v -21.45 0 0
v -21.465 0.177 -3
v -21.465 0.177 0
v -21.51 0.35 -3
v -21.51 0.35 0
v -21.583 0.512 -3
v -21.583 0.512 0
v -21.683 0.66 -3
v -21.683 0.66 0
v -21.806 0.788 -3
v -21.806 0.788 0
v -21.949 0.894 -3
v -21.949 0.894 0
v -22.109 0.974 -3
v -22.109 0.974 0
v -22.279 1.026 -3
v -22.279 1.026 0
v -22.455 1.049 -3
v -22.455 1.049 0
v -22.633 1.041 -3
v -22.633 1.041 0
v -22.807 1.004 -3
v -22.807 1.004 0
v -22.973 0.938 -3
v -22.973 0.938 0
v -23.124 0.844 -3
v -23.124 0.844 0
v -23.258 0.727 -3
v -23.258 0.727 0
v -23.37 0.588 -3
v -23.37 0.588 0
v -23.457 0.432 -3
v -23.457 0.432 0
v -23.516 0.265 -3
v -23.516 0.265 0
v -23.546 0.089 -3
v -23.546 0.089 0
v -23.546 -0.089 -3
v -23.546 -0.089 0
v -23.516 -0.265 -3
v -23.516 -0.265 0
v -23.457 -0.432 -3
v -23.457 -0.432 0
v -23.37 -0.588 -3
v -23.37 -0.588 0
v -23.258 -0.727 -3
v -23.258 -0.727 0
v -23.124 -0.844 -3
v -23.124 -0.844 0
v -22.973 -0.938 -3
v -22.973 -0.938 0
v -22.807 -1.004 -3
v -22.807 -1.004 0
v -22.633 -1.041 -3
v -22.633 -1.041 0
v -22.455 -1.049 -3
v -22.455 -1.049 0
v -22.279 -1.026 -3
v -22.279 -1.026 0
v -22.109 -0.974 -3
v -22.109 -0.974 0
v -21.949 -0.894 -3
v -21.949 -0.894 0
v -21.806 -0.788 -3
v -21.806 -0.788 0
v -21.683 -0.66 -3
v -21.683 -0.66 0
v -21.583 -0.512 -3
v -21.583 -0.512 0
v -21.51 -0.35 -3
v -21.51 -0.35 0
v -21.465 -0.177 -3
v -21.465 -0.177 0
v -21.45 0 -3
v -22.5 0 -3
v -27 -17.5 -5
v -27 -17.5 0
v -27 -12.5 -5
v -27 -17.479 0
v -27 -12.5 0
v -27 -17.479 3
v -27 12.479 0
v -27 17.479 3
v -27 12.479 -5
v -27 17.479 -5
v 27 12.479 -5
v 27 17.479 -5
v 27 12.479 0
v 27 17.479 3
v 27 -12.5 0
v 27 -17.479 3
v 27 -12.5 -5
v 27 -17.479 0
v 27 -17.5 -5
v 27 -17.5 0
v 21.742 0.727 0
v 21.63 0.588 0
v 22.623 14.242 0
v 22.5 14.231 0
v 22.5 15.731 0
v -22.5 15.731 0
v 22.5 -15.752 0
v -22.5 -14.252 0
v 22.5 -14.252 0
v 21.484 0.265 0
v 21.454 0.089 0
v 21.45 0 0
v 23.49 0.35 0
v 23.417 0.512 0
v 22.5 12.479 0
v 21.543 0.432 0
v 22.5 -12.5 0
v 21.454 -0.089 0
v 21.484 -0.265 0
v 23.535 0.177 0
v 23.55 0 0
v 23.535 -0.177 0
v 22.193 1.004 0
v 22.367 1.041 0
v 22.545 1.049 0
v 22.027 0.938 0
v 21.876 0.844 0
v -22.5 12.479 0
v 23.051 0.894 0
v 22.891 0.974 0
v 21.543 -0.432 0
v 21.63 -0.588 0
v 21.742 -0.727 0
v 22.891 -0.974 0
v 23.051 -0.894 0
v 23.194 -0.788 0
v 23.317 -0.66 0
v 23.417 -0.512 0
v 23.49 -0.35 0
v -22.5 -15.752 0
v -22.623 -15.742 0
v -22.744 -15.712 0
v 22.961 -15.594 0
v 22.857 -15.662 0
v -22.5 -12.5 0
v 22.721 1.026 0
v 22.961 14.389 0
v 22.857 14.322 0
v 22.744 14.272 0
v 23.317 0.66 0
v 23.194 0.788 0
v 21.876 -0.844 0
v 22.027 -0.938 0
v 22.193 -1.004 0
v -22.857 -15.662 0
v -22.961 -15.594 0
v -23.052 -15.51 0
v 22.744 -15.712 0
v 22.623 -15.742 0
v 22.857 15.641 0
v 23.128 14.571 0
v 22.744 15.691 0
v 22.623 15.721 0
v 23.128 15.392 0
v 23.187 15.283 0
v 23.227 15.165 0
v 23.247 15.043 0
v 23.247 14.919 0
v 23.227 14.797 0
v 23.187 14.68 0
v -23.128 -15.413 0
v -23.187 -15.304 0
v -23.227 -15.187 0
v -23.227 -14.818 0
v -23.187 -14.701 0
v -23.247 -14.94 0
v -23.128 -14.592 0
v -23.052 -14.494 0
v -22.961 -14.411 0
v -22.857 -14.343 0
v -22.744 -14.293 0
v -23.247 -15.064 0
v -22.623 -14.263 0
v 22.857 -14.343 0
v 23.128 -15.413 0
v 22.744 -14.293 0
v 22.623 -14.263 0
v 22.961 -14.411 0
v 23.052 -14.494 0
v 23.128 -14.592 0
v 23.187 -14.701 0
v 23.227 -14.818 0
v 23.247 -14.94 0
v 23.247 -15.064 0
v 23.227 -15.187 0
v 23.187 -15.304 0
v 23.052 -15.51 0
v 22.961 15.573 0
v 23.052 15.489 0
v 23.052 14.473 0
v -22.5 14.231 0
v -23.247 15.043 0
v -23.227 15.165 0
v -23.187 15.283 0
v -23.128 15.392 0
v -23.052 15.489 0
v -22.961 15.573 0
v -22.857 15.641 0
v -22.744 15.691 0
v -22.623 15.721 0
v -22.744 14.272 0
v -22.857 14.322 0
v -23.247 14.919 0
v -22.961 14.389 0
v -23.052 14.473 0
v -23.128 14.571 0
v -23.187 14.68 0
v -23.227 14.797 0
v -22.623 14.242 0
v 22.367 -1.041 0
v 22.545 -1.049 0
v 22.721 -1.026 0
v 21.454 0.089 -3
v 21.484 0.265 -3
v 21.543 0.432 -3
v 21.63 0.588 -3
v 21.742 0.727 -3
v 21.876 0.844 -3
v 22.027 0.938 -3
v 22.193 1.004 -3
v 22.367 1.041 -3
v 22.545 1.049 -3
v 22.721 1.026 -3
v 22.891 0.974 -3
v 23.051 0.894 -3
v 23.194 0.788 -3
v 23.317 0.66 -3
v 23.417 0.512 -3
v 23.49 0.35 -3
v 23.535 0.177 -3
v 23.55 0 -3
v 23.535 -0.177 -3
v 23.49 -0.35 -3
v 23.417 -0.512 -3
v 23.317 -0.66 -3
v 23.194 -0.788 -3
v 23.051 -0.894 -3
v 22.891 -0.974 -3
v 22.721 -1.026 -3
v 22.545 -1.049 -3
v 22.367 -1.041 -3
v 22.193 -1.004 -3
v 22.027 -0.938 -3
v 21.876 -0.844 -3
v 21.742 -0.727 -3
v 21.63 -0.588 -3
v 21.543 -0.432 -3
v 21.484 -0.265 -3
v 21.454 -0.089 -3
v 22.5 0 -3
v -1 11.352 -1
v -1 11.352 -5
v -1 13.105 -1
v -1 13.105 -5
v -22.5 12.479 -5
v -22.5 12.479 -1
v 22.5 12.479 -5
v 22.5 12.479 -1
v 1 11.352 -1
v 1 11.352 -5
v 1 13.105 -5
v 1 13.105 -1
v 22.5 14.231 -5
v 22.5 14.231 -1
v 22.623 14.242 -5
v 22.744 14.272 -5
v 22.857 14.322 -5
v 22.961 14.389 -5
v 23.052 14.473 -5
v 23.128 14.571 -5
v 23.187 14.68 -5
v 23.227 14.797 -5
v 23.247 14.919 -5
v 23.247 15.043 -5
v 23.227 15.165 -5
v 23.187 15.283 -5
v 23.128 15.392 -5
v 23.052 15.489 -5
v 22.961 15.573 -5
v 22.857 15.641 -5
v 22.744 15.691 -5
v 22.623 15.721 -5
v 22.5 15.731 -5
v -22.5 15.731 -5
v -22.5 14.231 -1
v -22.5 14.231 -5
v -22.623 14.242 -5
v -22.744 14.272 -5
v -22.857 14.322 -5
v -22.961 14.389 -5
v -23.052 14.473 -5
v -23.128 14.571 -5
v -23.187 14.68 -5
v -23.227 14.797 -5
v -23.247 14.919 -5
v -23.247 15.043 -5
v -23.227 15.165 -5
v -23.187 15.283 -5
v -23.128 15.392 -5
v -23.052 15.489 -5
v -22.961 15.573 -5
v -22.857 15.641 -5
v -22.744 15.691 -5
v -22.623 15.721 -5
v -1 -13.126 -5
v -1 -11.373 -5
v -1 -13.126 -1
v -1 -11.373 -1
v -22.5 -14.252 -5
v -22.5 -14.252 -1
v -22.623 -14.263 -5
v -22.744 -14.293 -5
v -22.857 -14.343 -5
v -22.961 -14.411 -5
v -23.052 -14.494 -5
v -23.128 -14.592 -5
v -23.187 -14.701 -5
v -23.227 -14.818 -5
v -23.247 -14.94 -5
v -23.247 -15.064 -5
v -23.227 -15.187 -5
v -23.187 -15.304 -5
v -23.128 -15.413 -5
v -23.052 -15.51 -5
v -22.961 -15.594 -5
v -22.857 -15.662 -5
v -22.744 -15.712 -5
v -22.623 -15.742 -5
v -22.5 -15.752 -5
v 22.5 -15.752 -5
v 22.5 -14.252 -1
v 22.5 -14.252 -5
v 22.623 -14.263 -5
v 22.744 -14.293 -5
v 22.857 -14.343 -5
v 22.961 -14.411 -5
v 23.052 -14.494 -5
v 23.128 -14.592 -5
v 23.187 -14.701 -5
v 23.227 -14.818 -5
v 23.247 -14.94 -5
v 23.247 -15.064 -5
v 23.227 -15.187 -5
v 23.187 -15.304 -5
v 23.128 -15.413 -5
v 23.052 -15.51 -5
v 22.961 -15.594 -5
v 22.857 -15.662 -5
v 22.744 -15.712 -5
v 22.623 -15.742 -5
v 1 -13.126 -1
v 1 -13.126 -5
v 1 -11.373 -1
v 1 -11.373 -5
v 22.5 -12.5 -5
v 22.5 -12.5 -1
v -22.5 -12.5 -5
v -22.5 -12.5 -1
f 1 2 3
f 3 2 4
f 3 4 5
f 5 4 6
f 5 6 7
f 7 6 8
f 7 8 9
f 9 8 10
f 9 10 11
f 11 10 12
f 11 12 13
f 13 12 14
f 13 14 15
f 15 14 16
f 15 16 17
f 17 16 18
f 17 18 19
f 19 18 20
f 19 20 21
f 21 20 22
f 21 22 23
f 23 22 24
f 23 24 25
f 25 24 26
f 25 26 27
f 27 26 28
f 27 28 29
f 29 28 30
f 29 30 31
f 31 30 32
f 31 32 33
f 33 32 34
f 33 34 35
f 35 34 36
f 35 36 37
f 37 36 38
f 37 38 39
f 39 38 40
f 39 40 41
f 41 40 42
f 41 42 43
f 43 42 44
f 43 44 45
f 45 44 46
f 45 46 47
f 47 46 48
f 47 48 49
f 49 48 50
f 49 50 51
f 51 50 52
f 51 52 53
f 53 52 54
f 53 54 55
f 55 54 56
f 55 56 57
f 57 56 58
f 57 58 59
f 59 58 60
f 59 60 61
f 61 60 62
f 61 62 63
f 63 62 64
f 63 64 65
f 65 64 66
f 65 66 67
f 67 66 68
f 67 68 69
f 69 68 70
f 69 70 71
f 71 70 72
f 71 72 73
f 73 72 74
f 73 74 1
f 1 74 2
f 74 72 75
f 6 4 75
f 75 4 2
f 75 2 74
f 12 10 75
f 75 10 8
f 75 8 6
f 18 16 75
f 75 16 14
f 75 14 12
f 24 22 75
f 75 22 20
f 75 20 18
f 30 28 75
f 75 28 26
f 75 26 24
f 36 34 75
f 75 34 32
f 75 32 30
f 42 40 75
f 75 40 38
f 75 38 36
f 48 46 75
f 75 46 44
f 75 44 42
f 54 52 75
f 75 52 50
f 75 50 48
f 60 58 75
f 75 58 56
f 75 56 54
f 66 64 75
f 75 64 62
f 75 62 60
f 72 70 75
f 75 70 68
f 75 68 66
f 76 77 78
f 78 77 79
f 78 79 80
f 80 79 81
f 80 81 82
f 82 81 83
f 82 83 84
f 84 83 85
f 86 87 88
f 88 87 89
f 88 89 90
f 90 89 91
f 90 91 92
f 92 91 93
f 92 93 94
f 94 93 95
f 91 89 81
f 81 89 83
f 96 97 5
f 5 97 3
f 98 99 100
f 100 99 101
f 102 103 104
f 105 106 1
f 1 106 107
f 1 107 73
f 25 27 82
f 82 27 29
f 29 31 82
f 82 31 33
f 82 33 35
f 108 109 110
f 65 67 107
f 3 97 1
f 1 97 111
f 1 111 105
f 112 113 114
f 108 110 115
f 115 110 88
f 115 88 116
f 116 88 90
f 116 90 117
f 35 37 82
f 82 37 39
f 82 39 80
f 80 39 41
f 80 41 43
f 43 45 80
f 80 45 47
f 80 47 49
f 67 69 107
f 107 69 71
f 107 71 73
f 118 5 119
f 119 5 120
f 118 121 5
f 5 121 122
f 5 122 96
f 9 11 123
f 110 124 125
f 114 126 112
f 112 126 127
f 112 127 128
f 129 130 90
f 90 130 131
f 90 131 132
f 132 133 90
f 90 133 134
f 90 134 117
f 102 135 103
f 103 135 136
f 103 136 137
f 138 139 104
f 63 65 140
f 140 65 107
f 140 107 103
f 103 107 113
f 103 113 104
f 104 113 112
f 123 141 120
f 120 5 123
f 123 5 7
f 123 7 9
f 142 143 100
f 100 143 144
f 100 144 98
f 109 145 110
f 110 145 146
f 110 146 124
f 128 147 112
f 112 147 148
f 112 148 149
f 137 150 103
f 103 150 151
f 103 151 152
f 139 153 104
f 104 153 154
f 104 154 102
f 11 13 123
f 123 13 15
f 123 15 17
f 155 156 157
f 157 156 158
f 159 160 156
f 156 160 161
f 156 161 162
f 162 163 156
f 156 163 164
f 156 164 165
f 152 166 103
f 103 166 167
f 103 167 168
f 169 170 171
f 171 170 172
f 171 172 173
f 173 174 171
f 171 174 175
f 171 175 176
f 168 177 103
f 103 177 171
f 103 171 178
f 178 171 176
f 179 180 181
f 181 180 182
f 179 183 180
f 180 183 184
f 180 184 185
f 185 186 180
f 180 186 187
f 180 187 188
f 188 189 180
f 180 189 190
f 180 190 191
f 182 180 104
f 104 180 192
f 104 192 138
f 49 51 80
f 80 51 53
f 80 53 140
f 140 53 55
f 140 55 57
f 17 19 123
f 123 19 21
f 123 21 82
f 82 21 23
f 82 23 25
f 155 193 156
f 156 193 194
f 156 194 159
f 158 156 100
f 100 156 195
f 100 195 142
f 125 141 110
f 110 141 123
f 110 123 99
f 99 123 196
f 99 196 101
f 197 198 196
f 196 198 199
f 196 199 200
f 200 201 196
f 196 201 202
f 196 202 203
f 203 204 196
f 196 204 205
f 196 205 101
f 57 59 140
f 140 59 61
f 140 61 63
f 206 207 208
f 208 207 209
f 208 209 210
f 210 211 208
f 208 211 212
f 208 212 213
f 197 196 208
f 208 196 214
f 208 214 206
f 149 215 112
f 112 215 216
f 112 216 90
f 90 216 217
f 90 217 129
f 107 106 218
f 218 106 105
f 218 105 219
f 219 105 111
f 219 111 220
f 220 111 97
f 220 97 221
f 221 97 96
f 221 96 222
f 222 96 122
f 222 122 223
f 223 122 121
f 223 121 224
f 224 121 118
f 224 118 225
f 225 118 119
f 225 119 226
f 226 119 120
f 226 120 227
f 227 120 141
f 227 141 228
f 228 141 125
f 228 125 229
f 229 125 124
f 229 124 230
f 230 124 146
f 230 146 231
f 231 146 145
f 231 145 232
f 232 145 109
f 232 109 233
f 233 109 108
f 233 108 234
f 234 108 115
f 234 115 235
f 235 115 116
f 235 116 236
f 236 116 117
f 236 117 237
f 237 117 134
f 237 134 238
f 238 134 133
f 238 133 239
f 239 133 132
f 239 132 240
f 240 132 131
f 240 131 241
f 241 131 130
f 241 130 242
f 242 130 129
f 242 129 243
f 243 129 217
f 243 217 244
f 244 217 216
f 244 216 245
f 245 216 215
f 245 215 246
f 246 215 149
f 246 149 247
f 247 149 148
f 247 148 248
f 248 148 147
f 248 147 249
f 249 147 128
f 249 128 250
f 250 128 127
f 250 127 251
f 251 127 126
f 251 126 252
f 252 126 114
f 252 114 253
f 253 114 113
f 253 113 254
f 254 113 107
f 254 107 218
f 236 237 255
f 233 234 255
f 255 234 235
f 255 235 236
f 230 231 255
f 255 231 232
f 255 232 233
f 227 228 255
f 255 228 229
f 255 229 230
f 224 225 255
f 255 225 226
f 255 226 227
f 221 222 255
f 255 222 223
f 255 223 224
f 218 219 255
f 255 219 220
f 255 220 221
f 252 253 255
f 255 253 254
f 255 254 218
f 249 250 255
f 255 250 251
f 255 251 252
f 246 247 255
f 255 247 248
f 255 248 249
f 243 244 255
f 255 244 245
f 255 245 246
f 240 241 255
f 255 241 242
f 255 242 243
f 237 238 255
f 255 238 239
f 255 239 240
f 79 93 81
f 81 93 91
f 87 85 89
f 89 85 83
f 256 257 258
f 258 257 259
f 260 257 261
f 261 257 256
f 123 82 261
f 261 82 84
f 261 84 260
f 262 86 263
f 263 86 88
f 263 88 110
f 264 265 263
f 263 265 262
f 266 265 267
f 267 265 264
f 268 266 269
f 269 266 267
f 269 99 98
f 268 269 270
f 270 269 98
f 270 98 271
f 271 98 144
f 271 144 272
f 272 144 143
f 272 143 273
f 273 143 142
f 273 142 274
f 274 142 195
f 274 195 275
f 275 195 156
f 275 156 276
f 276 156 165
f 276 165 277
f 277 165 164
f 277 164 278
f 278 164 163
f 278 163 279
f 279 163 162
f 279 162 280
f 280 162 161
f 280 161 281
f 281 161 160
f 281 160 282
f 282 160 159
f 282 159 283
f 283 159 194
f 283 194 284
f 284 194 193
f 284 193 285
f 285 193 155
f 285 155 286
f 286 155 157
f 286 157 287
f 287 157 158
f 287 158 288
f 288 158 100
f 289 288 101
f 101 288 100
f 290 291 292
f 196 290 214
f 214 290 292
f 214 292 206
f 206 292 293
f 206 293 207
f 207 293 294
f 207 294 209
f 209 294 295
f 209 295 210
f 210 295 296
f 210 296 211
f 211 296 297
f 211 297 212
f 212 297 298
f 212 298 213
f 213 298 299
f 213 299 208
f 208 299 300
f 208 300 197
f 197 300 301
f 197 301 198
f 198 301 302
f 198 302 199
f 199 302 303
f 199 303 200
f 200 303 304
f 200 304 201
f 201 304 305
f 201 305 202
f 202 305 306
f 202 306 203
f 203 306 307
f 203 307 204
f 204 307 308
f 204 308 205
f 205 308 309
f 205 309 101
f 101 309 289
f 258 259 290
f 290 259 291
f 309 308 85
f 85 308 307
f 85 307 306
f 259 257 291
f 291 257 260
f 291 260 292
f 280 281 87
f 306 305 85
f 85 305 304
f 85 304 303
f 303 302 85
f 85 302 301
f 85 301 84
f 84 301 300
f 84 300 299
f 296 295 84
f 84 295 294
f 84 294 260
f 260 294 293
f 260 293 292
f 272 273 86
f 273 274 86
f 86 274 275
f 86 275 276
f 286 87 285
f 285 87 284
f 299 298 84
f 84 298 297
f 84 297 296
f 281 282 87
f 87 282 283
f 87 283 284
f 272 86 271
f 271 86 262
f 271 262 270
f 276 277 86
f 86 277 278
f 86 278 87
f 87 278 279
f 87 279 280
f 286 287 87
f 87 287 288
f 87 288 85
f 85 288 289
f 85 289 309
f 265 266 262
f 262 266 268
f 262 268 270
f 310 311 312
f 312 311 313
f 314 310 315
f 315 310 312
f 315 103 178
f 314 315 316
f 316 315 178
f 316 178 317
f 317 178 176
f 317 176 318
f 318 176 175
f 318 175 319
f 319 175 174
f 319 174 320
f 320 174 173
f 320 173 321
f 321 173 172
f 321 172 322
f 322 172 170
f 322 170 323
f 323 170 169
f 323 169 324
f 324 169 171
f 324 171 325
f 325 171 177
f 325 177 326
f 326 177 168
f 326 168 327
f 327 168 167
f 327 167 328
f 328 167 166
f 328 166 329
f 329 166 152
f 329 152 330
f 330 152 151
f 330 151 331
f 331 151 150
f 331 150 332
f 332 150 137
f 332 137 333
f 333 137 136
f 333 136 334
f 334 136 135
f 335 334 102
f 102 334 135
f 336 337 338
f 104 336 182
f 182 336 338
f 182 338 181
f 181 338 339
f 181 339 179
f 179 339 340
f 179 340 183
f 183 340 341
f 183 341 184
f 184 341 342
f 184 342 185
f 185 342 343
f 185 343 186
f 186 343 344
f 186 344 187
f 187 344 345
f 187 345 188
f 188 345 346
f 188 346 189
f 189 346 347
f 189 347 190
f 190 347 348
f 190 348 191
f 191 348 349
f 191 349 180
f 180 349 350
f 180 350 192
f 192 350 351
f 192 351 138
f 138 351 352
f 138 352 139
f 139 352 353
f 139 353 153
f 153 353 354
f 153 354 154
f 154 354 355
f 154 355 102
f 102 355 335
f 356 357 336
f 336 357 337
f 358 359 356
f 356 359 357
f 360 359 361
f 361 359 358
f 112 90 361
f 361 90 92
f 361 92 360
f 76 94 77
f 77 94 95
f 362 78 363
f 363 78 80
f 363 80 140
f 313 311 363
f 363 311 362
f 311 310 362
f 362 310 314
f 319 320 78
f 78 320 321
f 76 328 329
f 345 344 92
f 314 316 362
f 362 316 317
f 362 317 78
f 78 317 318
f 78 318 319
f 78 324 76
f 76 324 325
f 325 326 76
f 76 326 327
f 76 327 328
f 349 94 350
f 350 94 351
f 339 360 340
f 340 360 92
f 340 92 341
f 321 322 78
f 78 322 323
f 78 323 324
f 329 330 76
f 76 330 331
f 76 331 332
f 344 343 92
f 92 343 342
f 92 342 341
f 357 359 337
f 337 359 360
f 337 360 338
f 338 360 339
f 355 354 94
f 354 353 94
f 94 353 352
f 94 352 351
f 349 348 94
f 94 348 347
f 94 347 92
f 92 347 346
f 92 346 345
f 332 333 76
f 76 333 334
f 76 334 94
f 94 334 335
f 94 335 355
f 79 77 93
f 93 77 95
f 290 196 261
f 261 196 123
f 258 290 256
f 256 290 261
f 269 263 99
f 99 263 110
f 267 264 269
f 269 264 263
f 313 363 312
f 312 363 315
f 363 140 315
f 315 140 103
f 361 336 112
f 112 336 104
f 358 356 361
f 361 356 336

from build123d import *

# Parameters (mm, degrees)
SKETCH1_R             = 1.05
BOSS_EXTRUDE1_DEPTH   = 3
BOSS_EXTRUDE1_2_DEPTH = 3
SKETCH1_3_W           = 54
SKETCH1_3_H           = 24.978925024
BOSS_EXTRUDE2_DEPTH   = 3
BOSS_EXTRUDE4_START   = -3
SKETCH4_W             = 54
SKETCH4_H             = 5
BOSS_EXTRUDE4_DEPTH   = 3
BOSS_EXTRUDE5_DEPTH   = 5
BOSS_EXTRUDE6_DEPTH   = 5
SKETCH6_W             = 45
SKETCH6_H             = 1
CUT_EXTRUDE1_DEPTH    = 2.5
SKETCH7_W             = 45
SKETCH7_H             = 1
CUT_EXTRUDE2_DEPTH    = 2.5


with BuildPart() as part:
    # Sketch1 → Boss-Extrude1 (new body)
    with BuildSketch(Plane.XY):
        with Locations((-22.5, 0)):
            Circle(SKETCH1_R)
    extrude(amount=-BOSS_EXTRUDE1_DEPTH)



with BuildPart() as body_2:
    # Sketch1 → Boss-Extrude1 2 (new body)
    with BuildSketch(Plane.XY):
        with Locations((22.5, 0)):
            Circle(SKETCH1_R)
    extrude(amount=-BOSS_EXTRUDE1_2_DEPTH)


with BuildPart() as part_1:
    add(part.part)

    add(body_2.part)  # Boss-Extrude2 merges body 2
    # Sketch1<3> → Boss-Extrude2 (add)
    with BuildSketch(Plane.XY):
        with Locations((0, -0.010537488)):
            Rectangle(SKETCH1_3_W, SKETCH1_3_H)
    extrude(amount=BOSS_EXTRUDE2_DEPTH)

    # Sketch4 → Boss-Extrude4 (add)
    with BuildSketch(Plane.XY.offset(3).offset(BOSS_EXTRUDE4_START)):
        with Locations((0, 14.978925024)):
            Rectangle(SKETCH4_W, SKETCH4_H)
        with Locations((0, -14.978925024)):
            Rectangle(SKETCH4_W, SKETCH4_H)
    extrude(amount=BOSS_EXTRUDE4_DEPTH)

    # Sketch3 → Boss-Extrude5 (add)
    with BuildSketch(Plane(origin=(0, 0, 0), x_dir=(-1, 0, 0), z_dir=(0, 0, -1))):
        with BuildLine():
            Line((-27, 12.478925024), (-22.5, 12.478925024))
            Line((-22.5, 12.478925024), (-1, 11.35215777))
            Line((-1, 11.35215777), (-1, 13.104559375))
            Line((-1, 13.104559375), (-22.5, 14.23132663))
            ThreePointArc((-22.5, 14.23132663), (-23.25, 14.98132663), (-22.5, 15.73132663))
            Line((-22.5, 15.73132663), (22.5, 15.73132663))
            ThreePointArc((22.5, 15.73132663), (23.25, 14.98132663), (22.5, 14.23132663))
            Line((22.5, 14.23132663), (1, 13.104559375))
            Line((1, 13.104559375), (1, 11.35215777))
            Line((1, 11.35215777), (22.5, 12.478925024))
            Line((22.5, 12.478925024), (27, 12.478925024))
            Line((27, 12.478925024), (27, 17.478925024))
            Line((27, 17.478925024), (-27, 17.478925024))
            Line((-27, 17.478925024), (-27, 12.478925024))
        make_face()
    extrude(amount=BOSS_EXTRUDE5_DEPTH)

    # Sketch3<4> → Boss-Extrude6 (add)
    with BuildSketch(Plane(origin=(0, 0, 0), x_dir=(-1, 0, 0), z_dir=(0, 0, -1))):
        with BuildLine():
            Line((1, -13.125634351), (1, -11.373232745))
            Line((1, -11.373232745), (22.5, -12.5))
            Line((22.5, -12.5), (27, -12.5))
            Line((27, -12.5), (27, -17.5))
            Line((27, -17.5), (-27, -17.5))
            Line((-27, -17.5), (-27, -12.5))
            Line((-27, -12.5), (-22.5, -12.5))
            Line((-22.5, -12.5), (-1, -11.373232745))
            Line((-1, -11.373232745), (-1, -13.125634351))
            Line((-1, -13.125634351), (-22.5, -14.252401605))
            ThreePointArc((-22.5, -14.252401605), (-23.25, -15.002401605), (-22.5, -15.752401605))
            Line((-22.5, -15.752401605), (22.5, -15.752401605))
            ThreePointArc((22.5, -15.752401605), (23.25, -15.002401605), (22.5, -14.252401605))
            Line((22.5, -14.252401605), (1, -13.125634351))
        make_face()
    extrude(amount=BOSS_EXTRUDE6_DEPTH)

    # Sketch6 → Cut-Extrude1 (cut, symmetric)
    with BuildSketch(Plane.XZ.offset(-12.478925024)):
        with Locations((0, -0.5)):
            Rectangle(SKETCH6_W, SKETCH6_H)
    extrude(amount=CUT_EXTRUDE1_DEPTH, both=True, mode=Mode.SUBTRACT)

    # Sketch7 → Cut-Extrude2 (cut, symmetric)
    with BuildSketch(Plane(origin=(0, -12.5, 0), x_dir=(1, 0, 0), z_dir=(0, 1, 0))):
        with Locations((0, 0.5)):
            Rectangle(SKETCH7_W, SKETCH7_H)
    extrude(amount=CUT_EXTRUDE2_DEPTH, both=True, mode=Mode.SUBTRACT)


solid = part_1.part
